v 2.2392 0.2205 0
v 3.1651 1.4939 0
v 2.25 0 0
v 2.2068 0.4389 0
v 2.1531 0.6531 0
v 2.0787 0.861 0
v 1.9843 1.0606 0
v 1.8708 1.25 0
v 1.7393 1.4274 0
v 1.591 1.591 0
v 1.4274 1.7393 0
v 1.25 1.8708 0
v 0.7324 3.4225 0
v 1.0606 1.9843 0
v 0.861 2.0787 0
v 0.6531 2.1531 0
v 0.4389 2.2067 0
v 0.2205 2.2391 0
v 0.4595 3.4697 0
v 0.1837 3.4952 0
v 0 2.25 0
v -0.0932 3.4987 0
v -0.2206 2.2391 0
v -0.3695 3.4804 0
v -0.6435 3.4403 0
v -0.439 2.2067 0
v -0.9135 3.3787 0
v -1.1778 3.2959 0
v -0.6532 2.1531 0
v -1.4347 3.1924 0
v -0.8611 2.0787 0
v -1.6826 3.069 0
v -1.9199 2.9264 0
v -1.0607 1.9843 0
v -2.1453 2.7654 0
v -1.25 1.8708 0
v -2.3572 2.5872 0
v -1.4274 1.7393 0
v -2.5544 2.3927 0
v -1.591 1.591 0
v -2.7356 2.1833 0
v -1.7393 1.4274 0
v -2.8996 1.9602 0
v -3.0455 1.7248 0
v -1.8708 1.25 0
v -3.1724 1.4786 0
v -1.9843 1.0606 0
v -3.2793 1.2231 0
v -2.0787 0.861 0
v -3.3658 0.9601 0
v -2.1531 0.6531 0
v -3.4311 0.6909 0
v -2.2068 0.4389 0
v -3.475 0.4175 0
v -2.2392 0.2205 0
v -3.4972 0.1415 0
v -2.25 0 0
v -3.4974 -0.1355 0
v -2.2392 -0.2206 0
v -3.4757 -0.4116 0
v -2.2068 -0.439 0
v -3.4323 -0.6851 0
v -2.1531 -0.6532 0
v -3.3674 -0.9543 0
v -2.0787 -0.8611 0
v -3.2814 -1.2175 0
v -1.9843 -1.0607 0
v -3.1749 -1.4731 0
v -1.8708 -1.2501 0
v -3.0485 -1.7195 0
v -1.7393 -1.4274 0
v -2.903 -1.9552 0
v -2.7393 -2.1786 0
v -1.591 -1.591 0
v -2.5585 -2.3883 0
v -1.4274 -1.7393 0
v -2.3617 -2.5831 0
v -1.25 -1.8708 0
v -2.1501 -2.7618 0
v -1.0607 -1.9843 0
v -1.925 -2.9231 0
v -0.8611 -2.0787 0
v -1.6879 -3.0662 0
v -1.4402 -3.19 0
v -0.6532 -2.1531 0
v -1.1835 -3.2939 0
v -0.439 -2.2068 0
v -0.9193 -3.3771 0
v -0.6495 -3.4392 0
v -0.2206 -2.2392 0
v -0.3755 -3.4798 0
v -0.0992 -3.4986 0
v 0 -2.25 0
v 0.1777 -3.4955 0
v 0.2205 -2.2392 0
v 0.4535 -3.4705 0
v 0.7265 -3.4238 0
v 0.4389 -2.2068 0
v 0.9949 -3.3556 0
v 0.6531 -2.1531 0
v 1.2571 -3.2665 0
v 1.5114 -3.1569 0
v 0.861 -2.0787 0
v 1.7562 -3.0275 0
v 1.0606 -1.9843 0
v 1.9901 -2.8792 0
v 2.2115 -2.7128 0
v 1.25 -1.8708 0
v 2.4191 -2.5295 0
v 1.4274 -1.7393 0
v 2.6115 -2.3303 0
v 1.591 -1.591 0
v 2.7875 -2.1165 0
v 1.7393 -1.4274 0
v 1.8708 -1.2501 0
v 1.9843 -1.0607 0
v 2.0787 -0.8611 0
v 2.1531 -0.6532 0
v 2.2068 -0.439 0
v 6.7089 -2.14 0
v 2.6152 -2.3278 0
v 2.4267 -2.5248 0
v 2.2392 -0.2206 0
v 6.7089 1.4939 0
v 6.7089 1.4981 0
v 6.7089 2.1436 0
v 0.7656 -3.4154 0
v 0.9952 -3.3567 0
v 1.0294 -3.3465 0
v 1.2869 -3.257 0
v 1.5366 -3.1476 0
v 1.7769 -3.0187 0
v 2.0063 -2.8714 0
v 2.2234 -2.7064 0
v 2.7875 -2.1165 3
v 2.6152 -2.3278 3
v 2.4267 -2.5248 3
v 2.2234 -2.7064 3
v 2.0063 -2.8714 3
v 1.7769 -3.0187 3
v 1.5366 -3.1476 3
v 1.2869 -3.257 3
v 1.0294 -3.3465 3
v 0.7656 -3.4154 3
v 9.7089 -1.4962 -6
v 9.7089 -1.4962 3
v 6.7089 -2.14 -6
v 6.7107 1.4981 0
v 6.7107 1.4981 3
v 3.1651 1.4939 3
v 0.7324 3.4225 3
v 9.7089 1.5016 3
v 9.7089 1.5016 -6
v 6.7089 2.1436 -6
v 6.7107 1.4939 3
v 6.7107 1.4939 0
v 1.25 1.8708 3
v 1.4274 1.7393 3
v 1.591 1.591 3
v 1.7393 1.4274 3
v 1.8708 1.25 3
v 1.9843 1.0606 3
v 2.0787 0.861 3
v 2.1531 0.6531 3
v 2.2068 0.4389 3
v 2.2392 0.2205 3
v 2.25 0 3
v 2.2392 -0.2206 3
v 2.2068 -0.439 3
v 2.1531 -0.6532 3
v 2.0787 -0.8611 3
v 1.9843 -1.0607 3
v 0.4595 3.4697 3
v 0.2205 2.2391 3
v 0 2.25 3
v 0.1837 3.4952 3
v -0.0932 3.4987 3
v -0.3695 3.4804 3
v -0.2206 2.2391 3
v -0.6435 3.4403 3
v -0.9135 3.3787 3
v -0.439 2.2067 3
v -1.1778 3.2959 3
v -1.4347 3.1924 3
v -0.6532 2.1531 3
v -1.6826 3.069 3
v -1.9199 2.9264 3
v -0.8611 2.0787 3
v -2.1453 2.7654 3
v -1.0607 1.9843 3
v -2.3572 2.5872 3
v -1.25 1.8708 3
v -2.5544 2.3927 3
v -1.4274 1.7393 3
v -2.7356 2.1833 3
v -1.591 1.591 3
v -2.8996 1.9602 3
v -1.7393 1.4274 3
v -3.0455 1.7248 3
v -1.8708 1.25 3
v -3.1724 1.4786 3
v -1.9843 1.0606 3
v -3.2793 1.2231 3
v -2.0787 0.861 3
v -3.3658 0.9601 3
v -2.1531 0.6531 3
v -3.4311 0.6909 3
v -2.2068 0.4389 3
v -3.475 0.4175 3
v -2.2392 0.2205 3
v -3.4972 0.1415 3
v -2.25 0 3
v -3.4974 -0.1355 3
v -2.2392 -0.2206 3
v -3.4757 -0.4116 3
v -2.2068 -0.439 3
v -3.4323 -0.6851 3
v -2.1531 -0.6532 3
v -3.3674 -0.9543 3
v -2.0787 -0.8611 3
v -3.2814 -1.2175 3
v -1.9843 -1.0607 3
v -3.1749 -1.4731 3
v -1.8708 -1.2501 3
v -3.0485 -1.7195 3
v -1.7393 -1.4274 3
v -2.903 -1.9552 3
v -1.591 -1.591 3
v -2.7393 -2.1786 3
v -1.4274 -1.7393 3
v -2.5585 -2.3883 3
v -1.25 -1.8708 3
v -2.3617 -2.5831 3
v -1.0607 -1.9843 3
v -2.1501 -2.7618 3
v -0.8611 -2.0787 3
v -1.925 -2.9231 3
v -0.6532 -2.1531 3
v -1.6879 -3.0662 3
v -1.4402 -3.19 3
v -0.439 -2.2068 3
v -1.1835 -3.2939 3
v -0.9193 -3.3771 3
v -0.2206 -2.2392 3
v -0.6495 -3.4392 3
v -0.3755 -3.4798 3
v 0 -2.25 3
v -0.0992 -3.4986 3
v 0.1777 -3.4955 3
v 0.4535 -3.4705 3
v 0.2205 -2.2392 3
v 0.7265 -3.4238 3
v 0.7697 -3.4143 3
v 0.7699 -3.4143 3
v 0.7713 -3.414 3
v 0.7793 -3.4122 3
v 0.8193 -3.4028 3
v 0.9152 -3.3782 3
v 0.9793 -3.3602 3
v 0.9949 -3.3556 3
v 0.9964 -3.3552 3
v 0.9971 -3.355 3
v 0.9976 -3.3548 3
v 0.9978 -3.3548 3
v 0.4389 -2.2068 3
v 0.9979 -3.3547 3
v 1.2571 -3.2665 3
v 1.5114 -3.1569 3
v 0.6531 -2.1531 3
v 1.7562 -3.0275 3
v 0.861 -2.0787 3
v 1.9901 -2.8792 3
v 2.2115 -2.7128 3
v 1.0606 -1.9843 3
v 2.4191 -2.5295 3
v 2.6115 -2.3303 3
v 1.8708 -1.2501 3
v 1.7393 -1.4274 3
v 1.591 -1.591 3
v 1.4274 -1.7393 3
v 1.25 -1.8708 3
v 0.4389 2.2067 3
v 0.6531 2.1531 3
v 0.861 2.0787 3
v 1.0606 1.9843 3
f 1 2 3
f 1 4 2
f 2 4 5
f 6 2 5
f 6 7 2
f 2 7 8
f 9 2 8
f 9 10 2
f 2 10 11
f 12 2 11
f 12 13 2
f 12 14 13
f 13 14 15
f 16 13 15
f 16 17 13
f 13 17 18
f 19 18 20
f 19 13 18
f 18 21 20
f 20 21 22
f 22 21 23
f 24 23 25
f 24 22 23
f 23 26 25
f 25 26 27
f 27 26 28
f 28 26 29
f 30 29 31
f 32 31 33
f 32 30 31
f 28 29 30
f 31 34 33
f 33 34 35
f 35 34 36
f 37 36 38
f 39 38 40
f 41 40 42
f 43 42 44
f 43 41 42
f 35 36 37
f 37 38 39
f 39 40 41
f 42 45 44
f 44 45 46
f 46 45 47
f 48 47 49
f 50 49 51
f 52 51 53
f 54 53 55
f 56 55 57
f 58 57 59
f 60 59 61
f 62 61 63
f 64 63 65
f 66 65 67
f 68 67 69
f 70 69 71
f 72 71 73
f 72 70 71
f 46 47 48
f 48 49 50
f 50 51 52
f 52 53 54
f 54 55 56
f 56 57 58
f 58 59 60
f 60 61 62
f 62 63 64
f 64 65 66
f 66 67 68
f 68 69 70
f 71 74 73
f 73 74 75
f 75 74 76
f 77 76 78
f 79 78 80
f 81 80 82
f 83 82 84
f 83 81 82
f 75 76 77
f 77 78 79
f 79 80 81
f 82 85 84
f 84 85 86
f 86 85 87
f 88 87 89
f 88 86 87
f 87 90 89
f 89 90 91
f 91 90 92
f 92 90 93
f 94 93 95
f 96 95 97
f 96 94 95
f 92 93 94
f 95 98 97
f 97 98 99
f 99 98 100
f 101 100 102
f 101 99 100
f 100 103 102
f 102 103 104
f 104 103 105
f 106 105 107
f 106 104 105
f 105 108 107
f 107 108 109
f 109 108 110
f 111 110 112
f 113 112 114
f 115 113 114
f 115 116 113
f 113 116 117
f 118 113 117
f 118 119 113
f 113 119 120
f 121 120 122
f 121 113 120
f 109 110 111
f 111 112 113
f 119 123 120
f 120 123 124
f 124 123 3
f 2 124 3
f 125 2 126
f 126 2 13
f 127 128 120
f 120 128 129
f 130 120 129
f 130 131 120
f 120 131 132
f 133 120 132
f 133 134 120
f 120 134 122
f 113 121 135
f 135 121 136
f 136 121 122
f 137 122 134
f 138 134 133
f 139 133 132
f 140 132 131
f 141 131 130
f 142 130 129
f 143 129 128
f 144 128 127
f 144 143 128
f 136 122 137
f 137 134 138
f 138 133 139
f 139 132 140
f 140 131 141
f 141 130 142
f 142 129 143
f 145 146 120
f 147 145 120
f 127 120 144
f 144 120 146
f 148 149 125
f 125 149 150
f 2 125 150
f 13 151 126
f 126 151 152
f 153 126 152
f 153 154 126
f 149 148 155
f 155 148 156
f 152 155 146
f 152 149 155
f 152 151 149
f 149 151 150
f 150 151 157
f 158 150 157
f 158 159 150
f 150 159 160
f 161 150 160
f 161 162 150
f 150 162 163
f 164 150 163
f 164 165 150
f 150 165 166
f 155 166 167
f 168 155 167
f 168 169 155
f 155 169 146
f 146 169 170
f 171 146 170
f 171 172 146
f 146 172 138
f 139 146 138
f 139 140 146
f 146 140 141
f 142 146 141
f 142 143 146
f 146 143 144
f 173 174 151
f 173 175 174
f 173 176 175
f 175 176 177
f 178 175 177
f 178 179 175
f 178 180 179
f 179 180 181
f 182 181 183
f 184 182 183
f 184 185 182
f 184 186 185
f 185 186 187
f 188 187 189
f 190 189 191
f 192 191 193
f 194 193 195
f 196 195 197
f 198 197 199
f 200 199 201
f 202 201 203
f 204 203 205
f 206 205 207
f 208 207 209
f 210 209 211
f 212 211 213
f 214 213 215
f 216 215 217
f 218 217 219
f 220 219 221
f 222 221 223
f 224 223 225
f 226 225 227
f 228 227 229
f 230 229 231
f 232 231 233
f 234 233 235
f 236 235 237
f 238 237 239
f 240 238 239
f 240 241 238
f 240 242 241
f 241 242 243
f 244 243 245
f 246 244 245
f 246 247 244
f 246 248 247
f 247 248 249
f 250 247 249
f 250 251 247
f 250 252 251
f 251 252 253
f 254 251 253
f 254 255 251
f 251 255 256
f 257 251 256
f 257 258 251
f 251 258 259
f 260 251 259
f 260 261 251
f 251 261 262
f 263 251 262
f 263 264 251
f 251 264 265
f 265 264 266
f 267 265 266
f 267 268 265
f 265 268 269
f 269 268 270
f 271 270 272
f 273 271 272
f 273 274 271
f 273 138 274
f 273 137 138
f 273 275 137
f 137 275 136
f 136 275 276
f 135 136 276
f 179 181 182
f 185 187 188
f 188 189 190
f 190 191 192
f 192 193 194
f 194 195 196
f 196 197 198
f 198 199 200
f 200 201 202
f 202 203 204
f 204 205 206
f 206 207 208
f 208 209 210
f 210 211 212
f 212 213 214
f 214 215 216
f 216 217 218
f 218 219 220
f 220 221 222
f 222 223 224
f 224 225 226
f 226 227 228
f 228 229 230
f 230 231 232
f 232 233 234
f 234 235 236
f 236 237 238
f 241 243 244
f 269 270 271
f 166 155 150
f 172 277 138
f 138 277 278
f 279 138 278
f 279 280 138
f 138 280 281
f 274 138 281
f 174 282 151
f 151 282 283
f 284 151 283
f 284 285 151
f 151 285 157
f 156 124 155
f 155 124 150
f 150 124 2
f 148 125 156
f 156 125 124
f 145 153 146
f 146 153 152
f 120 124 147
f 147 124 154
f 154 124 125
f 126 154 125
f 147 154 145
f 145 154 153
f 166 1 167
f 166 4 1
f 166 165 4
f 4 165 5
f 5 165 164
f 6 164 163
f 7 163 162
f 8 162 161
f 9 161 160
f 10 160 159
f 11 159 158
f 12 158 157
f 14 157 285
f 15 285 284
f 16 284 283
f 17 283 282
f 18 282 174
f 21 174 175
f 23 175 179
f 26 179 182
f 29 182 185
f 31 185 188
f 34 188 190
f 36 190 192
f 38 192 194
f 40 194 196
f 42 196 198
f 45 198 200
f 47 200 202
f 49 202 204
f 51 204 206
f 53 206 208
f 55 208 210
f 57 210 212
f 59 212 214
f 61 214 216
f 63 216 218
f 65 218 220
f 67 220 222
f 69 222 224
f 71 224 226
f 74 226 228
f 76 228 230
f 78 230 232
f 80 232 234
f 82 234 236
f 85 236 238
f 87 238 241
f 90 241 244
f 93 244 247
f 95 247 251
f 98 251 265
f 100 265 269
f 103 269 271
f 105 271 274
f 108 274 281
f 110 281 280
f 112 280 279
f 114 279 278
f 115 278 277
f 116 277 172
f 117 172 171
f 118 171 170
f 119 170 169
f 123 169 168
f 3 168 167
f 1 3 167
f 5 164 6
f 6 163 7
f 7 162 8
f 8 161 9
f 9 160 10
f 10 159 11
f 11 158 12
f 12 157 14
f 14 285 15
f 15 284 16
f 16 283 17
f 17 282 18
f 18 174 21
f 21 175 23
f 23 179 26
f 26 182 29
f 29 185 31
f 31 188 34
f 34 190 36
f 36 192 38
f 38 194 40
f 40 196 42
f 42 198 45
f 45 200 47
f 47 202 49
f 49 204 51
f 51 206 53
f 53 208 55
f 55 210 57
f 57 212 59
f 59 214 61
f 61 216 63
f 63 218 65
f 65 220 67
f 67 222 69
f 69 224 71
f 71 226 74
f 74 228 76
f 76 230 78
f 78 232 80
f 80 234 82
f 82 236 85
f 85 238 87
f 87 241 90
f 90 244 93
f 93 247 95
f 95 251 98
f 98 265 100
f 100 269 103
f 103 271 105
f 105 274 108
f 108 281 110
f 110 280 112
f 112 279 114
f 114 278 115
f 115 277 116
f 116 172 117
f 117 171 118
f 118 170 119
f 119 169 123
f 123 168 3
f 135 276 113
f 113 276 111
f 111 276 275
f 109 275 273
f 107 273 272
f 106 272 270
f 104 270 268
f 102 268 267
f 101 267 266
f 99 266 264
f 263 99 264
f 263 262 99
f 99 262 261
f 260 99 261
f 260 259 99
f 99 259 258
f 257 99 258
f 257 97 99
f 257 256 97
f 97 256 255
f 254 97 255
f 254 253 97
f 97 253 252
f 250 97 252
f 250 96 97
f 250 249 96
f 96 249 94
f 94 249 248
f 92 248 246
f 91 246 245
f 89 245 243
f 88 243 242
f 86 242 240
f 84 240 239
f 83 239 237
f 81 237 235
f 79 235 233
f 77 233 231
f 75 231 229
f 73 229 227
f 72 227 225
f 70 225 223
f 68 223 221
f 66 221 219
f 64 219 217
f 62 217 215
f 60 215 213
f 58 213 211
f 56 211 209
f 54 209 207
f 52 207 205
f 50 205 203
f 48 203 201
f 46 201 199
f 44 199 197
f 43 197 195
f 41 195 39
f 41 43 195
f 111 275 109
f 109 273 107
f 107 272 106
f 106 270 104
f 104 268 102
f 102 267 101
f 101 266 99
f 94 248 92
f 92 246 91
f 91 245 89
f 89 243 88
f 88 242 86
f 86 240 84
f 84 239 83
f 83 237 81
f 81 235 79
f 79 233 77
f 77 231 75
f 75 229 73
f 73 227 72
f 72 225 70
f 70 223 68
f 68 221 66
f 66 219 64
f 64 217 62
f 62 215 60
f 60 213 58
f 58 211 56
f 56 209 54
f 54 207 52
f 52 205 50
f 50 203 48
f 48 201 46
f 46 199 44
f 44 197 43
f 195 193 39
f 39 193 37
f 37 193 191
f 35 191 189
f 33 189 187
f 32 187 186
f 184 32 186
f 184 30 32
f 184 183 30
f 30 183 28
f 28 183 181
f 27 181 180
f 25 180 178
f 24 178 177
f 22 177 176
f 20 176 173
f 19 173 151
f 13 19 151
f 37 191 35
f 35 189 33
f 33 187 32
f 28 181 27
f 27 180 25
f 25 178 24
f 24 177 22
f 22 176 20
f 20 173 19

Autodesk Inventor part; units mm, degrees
ref_plane "YZ Plane" through (0, 0, 0) normal (1, 0, 0) x (0, 1, 0)
ref_plane "XZ Plane" through (0, 0, 0) normal (0, 1, 0) x (-1, 0, 0)
ref_plane "XY Plane" through (0, 0, 0) normal (0, 0, 1) x (1, 0, 0)
sketch "Sketch1" plane through (0, 0, 0) normal (0, 0, 1) x (1, 0, 0)
  circle A0 centre (0, 0) radius 2.25
  arc A1 (3.165148, 1.493933) -> (3.159393, -1.506067) centre (0, 0) ccw
  line L0 (6.72439, -1.506067) -> (3.159393, -1.506067)
  line L1 (-0.27561, 3.050761) -> (6.72439, 3.050761) construction
  line L2 (1.598572, 1.503832) -> (1.673616, 1.503832)
  line L3 (3.165148, 1.493933) -> (6.72439, 1.493933)
  line L4 (6.72439, -1.506067) -> (6.72439, 1.493933)
  line L5 (6.72439, 1.493933) -> (6.72439, -1.506067)
  point P0 (7.357739, 0.5858)
  point P1 (6.72439, -0.006067)
  dimension "d0" = 4.5
  dimension "d1" = 7
  dimension "d3" = 7
  dimension "d13" = 3
extrude "Extrusion1" add sketch "Sketch1" along normal blind 3
sketch "Sketch2" plane through (0, 0, 0) normal (0, 0, -1) x (-1, 0, 0)
  line L0 (-6.708916, -1.496168) -> (-9.708916, -1.496168)
  line L1 (-9.708916, -1.496168) -> (-9.708916, 1.501612)
  line L2 (-9.708916, 1.501612) -> (-6.708916, 1.501612)
  line L3 (-6.708916, -1.496168) -> (-6.708916, 1.501612)
  line L4 (-3.159393, -1.506067) -> (-6.72439, -1.506067)
  point P0 (0, 0)
  point P1 (-9.708916, 0.002722)
  point P2 (-2.307375, -1.496168)
  point P3 (-6.72439, -1.506067)
  dimension "d7" = 3
extrude "Extrusion2" add sketch "Sketch2" along normal blind 6
sketch "Sketch6" plane through (0, 0, 0) normal (0, 0, 1) x (1, 0, 0)
  line L0 (6.708916, 1.501612) -> (9.708916, 1.501612)
  line L1 (9.708916, -1.496168) -> (6.72439, -1.496168)
  line L2 (6.710722, 1.501612) -> (9.708916, 1.501612)
  line L3 (9.708916, 1.501612) -> (9.708916, -1.496168)
  line L4 (9.708916, -1.496168) -> (6.710722, -1.496168)
  line L5 (6.710722, -1.496168) -> (6.710722, 1.501612)
  point P0 (0, 0)
extrude "Extrusion5" add sketch "Sketch6" along normal blind 3
sketch "Sketch8" plane through (0, 0, 3) normal (0, 0, 1) x (1, 0, 0)
  line L0 (9.708916, -1.496168) -> (9.708916, 1.501612)
  line L1 (9.708916, 1.501612) -> (0.73239, 3.422514)
  line L2 (9.708916, -1.496168) -> (0.734374, -3.422089)
  arc A0 (3.165148, 1.493933) -> (0.73239, 3.422514) centre (0, 0) ccw
  line L3 (9.708916, 1.501612) -> (3.165148, 1.493933)
  line L4 (3.159385, -1.496168) -> (9.708916, -1.496168)
  arc A1 (0.734374, -3.422089) -> (3.159385, -1.496168) centre (0.024651, -0.038766) ccw
  point P0 (0, 0)
  point P1 (3.159393, -1.506067)
  point P2 (0.765599, -3.415388)
sketch "Sketch8 outline for Extrusion7" plane through (0, 0, 3) normal (0, 0, 1) x (1, 0, 0)
  line L0 (0.765599, -3.415388) -> (9.708916, -1.496168)
  arc A0 (3.159385, -1.496168) -> (0.765599, -3.415388) centre (0.024651, -0.038766) cw
  line L1 (9.708916, -1.496168) -> (3.159385, -1.496168)
  line L2 (3.165148, 1.493933) -> (9.708916, 1.501612)
  arc A1 (0.73239, 3.422514) -> (3.165148, 1.493933) centre (0, 0) cw
  line L3 (9.708916, 1.501612) -> (0.73239, 3.422514)
extrude "Extrusion7" add sketch "Sketch8 outline for Extrusion7" against normal blind 3
sketch "Sketch9" plane through (0, 0, 0) normal (0, 0, -1) x (-1, 0, 0)
  line L0 (-6.708916, -1.496168) -> (-6.708916, 1.501612)
  line L1 (-6.708916, 1.501612) -> (-6.708916, 2.143587)
  line L2 (-6.708916, 1.501612) -> (-9.708916, 1.501612)
  line L3 (-9.708916, 1.501612) -> (-6.708916, 2.143587)
  line L4 (-6.708916, 1.501612) -> (-9.708916, 1.501612)
  line L5 (-6.708916, -1.496168) -> (-6.708916, -2.139963)
  line L6 (-9.708916, -1.496168) -> (-0.765599, -3.415388)
  line L7 (-9.708916, -1.496168) -> (-6.708916, -1.496168)
  line L8 (-9.708916, -1.496168) -> (-6.708916, -1.496168)
  line L9 (-9.708916, -1.496168) -> (-6.708916, -2.139963)
  point P0 (0, 0)
extrude "Extrusion8" add sketch "Sketch9" along normal blind 6
properties part number "small pulley cable retainers"
